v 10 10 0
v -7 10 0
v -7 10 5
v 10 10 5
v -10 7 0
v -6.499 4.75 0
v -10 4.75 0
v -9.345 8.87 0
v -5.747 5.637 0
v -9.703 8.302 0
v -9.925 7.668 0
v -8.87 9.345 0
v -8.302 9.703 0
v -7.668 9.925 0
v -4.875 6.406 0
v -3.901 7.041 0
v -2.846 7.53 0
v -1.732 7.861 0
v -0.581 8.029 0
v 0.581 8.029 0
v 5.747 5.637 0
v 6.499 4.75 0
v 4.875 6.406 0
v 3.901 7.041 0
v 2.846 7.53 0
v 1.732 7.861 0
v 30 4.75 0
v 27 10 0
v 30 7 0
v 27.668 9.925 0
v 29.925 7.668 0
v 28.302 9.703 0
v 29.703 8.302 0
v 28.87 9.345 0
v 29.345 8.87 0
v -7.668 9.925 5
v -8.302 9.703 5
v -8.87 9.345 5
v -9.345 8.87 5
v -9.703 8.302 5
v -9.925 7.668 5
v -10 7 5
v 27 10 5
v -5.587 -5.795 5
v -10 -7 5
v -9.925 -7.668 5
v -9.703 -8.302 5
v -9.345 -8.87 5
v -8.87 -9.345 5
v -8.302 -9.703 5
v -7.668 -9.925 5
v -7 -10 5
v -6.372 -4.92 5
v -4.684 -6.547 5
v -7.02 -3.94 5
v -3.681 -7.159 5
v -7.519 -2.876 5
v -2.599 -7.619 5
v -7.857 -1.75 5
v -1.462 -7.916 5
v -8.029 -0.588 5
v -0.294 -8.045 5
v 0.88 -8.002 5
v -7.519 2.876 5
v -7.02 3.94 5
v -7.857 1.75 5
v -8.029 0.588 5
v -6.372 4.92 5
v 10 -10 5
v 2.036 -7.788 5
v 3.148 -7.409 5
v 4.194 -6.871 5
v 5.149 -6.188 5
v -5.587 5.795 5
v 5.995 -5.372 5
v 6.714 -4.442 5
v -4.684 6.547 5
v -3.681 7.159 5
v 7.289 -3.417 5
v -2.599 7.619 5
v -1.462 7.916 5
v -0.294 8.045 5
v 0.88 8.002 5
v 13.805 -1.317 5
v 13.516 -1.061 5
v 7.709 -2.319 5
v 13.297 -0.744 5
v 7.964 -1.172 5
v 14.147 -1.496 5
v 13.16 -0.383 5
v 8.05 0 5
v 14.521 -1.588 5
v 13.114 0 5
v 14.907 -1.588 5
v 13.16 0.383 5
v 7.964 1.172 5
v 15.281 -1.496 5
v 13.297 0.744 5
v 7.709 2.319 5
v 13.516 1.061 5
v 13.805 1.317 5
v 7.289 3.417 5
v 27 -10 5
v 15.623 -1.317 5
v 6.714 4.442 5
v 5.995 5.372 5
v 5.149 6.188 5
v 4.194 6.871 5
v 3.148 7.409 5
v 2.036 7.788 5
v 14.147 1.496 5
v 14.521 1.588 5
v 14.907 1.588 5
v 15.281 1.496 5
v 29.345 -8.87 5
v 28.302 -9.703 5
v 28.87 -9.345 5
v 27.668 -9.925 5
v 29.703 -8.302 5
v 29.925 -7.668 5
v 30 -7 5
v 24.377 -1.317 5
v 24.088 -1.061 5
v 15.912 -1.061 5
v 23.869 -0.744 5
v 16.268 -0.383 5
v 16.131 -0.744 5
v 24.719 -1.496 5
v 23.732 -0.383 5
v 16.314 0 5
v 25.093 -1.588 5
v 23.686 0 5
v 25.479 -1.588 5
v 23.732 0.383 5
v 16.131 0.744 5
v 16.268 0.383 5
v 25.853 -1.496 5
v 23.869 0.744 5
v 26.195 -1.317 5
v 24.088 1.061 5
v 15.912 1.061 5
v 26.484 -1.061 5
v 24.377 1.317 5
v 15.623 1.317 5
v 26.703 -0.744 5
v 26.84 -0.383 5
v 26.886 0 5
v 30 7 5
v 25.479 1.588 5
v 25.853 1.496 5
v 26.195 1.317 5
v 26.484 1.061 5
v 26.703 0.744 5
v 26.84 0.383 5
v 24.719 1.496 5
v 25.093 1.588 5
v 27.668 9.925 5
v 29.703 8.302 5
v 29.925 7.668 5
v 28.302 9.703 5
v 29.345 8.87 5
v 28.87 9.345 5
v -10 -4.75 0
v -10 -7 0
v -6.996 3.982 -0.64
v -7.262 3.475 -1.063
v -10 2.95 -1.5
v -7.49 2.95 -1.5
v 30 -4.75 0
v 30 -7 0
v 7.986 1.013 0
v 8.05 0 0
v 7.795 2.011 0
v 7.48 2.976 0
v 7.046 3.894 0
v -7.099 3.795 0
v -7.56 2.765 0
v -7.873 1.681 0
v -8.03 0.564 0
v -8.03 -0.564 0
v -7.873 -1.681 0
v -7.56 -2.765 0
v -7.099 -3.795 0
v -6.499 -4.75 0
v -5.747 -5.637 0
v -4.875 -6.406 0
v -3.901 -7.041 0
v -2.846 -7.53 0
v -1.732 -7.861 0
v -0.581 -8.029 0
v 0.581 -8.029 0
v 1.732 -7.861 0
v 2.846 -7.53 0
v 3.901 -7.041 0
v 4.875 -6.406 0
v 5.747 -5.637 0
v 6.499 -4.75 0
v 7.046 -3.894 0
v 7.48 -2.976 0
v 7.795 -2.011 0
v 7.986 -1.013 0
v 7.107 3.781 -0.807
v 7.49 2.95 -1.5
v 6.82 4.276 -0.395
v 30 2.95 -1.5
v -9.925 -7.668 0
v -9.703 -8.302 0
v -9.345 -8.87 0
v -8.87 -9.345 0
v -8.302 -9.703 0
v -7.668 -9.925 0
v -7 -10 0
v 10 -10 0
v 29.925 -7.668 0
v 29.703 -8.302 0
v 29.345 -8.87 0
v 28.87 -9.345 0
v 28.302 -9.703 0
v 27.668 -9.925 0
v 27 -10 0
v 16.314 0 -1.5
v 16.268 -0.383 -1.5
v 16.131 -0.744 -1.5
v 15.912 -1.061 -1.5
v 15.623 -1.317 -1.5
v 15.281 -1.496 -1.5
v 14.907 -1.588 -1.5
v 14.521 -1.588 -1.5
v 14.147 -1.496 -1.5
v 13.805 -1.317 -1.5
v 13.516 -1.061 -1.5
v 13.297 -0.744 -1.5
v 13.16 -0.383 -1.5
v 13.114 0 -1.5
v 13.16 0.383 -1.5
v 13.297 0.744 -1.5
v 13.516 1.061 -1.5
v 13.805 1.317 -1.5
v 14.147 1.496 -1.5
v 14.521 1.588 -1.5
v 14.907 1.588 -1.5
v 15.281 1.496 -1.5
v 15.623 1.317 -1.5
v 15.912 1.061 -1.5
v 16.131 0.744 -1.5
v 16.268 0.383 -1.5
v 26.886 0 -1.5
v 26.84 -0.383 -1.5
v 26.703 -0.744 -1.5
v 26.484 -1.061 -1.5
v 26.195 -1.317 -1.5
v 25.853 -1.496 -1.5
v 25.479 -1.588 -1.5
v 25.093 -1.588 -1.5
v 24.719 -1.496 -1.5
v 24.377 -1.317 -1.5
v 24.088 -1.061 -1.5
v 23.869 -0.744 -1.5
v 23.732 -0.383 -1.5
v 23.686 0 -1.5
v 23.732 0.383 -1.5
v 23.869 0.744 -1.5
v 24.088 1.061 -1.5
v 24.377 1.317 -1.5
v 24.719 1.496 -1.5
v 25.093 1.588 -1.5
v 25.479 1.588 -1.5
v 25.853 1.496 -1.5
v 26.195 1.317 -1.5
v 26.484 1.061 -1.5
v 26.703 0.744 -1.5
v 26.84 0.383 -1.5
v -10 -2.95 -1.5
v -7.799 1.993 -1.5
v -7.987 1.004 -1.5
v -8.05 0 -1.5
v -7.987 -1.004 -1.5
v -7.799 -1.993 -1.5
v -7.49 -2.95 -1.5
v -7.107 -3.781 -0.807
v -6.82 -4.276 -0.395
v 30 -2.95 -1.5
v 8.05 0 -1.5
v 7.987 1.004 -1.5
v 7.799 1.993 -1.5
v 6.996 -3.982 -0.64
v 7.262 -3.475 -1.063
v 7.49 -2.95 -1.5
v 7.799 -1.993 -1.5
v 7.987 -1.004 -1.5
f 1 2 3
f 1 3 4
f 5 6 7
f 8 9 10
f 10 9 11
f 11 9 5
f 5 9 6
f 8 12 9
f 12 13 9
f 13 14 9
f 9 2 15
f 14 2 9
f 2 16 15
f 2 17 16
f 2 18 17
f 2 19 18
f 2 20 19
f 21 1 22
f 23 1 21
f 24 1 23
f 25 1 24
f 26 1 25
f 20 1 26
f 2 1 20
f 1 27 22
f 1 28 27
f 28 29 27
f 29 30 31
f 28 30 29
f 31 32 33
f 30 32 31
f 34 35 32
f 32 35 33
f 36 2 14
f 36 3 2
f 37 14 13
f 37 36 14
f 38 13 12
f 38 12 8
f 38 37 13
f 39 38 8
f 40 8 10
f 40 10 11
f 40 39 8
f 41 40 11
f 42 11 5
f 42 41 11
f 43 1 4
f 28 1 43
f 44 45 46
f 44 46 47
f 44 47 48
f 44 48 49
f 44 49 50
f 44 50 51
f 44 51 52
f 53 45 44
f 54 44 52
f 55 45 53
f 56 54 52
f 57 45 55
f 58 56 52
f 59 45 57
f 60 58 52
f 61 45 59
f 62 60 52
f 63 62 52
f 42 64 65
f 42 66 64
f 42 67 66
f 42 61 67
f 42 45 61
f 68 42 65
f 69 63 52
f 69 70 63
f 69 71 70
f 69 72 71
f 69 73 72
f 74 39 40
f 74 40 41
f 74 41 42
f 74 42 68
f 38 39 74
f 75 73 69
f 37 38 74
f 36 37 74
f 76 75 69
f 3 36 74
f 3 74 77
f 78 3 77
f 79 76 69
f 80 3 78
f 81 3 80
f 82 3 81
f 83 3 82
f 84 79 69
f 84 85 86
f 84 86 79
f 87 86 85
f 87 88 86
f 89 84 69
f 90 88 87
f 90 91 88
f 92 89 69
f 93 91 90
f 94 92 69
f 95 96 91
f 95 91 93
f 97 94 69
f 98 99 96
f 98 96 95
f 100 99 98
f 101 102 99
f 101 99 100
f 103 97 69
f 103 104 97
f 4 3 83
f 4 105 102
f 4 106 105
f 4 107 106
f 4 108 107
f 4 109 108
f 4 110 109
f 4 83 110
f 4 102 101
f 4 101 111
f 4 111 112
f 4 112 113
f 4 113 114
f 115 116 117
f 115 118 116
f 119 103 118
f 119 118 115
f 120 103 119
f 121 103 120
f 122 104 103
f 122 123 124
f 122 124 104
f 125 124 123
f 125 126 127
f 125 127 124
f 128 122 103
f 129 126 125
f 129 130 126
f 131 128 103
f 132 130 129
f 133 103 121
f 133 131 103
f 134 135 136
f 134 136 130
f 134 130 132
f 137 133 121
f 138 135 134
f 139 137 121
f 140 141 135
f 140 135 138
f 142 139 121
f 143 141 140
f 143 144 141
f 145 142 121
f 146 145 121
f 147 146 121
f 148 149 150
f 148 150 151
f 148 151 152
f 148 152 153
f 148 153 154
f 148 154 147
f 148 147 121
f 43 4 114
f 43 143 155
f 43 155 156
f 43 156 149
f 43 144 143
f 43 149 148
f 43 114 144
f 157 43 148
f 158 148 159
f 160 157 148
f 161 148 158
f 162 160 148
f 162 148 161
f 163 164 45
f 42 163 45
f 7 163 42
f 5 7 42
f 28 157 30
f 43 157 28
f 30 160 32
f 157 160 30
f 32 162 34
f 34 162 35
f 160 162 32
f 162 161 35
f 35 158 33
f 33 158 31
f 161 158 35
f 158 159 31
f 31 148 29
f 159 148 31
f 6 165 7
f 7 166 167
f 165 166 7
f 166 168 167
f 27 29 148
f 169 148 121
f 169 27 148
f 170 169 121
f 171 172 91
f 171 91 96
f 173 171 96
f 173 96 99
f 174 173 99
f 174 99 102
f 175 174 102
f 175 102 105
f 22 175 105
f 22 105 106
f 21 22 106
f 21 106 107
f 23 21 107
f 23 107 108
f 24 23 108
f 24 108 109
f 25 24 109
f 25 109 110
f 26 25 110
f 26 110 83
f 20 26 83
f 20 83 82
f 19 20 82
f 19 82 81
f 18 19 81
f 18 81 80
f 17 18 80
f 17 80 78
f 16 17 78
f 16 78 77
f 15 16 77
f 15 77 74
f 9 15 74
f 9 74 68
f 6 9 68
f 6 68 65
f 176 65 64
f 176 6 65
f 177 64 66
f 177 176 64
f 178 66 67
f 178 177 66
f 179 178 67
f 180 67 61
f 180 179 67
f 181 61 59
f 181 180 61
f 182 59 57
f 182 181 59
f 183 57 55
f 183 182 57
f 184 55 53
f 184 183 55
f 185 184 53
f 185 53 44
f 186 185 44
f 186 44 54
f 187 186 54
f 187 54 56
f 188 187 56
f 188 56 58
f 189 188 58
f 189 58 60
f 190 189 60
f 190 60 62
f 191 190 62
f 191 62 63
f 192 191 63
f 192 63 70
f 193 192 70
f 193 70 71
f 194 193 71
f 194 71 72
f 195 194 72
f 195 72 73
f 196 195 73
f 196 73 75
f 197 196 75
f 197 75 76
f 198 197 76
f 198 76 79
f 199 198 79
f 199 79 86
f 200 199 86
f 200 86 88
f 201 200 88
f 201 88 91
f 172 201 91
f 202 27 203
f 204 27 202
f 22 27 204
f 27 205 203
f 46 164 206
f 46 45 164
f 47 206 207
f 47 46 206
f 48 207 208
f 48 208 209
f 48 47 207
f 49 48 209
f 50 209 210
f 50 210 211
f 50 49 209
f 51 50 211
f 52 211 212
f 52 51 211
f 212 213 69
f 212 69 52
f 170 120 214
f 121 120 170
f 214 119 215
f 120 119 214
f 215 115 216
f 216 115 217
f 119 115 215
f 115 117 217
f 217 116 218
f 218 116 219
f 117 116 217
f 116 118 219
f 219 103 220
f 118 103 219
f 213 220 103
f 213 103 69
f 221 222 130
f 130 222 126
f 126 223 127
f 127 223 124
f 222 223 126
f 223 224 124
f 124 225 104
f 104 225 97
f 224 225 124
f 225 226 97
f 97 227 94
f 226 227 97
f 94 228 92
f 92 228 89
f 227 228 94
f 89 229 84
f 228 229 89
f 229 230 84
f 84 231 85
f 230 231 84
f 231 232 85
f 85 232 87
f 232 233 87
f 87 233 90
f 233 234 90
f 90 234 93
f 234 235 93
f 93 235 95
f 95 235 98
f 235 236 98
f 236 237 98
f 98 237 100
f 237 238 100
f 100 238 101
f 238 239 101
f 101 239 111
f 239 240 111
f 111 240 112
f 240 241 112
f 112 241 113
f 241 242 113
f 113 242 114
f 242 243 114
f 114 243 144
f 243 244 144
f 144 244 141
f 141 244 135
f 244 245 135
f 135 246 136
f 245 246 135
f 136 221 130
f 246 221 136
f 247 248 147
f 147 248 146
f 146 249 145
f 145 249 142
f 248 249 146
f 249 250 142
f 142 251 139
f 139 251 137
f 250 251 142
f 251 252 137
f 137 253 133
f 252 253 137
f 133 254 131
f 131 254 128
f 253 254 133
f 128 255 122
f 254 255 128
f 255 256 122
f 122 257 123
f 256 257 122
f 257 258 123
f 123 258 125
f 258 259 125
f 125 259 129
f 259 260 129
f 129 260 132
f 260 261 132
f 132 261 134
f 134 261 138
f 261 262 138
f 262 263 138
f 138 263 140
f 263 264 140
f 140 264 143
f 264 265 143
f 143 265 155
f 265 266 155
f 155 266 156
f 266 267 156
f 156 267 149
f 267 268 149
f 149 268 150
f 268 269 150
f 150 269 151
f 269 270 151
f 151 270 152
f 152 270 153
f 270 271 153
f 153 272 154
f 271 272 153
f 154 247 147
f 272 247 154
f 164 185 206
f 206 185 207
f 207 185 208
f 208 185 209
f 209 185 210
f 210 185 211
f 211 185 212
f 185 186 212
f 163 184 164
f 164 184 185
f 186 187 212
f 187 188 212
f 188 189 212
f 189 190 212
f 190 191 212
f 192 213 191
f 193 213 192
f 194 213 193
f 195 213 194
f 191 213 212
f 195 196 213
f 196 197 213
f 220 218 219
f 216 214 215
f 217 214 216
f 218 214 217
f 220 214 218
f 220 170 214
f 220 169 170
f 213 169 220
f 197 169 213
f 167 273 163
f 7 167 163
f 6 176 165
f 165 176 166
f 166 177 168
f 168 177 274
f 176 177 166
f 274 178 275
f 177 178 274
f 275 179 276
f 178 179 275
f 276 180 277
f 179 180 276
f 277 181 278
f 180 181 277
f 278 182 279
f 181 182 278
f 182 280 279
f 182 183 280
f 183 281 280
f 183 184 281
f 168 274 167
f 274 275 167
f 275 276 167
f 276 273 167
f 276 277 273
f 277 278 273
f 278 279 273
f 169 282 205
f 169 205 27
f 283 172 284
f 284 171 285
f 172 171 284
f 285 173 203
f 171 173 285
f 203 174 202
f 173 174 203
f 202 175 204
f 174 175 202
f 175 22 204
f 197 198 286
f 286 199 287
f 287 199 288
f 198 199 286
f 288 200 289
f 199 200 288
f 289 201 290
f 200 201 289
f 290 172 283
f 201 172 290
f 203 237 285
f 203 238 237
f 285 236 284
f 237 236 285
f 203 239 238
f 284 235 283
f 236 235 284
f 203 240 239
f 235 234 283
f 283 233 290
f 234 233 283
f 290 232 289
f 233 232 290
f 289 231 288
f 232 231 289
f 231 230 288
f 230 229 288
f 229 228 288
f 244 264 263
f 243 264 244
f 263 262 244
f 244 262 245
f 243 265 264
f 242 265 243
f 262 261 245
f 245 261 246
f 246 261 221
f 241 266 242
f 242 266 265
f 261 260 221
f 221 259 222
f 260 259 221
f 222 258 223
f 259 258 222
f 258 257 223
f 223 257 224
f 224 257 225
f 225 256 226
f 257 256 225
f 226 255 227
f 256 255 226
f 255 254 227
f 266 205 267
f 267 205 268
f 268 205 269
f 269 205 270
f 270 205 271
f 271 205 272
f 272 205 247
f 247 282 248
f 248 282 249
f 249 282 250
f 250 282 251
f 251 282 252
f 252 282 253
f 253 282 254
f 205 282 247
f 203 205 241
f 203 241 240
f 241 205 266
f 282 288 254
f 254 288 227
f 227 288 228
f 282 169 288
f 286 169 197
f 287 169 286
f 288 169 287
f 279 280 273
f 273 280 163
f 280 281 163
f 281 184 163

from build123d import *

# Parameters (mm, degrees)
SKETCH_R        = 8.05
PAD_DEPTH       = 5
PAD001_DEPTH    = 40
POCKET_DEPTH    = 1.501
SKETCH002_R     = 1.6
POCKET001_DEPTH = 6.501
FILLET_R        = 3


with BuildPart() as part:
    # Sketch → Pad (new body)
    with BuildSketch(Plane.XY):
        Polygon((-10, 10), (10, 10), (30, 10), (30, -10), (10, -10), (-10, -10), align=None)
        Circle(SKETCH_R, mode=Mode.SUBTRACT)
    extrude(amount=PAD_DEPTH)

    # Sketch001 (on Face3 of Pad) → Pad001 (join)
    with BuildSketch(Plane.YZ.offset(30)):
        Polygon((-4.75, 0), (4.75, 0), (2.95, -1.5), (-2.95, -1.5), align=None)
    extrude(amount=-PAD001_DEPTH)

    # Pad001 Face16 → Pocket (cut, through all)
    with BuildSketch(Plane(origin=(0, 0, 0), x_dir=(0, 1, 0), z_dir=(0, 0, 1))):
        with BuildLine():
            ThreePointArc((-4.75, -6.499231), (-2.498369, -7.652493), (0, -8.05))
            ThreePointArc((0, -8.05), (2.498369, -7.652493), (4.75, -6.499231))
            Line((4.75, -6.499231), (4.75, 6.499231))
            ThreePointArc((4.75, 6.499231), (0, 8.05), (-4.75, 6.499231))
            Line((-4.75, 6.499231), (-4.75, -6.499231))
        make_face()
    extrude(amount=-POCKET_DEPTH, mode=Mode.SUBTRACT)

    # Sketch002 (on Face18 of Pocket) → Pocket001 (cut, through all)
    with BuildSketch(Plane(origin=(0, 0, -1.5), x_dir=(1, 0, 0), z_dir=(0, 0, -1))):
        with Locations((14.714, 0)):
            Circle(SKETCH002_R)
        with Locations((25.286, 0)):
            Circle(SKETCH002_R)
    extrude(amount=-POCKET001_DEPTH, mode=Mode.SUBTRACT)

    # Fillet
    fillet_edges = [part.edges().sort_by_distance(p)[0] for p in [
        (30, -10, 2.5),
        (30, 10, 2.5),
        (-10, -10, 2.5),
        (-10, 10, 2.5),
    ]]
    fillet(fillet_edges, radius=FILLET_R)


solid = part.part
